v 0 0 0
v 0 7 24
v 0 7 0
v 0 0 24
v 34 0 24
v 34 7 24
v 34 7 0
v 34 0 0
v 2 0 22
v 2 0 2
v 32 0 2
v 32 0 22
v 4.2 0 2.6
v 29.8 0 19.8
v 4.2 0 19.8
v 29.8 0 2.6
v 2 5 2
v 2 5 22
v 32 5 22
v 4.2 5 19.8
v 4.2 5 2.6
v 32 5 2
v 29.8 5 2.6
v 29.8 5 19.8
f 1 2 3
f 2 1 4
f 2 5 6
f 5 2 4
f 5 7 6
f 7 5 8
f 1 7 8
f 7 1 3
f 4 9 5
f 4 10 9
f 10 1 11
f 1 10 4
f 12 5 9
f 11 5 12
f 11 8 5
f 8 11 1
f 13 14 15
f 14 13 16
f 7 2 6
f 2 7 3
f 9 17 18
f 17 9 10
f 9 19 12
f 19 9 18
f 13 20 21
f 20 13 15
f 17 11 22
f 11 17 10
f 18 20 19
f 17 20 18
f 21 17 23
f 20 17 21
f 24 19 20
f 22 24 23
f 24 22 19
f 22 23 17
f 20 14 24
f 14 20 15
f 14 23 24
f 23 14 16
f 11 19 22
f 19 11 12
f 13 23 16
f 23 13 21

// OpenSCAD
ml_up_width=600;
ml_up_depth=30;
ml_up_heigth=20;
ml_up_thickness=2;


ml_endcap_width=ml_up_depth + 4;
ml_endcap_heigth=ml_up_heigth + 4;
ml_endcap_depth=7;
ml_endcap_groove_depth=5;
ml_dif_thickness=0.4;

difference() {
    cube([ml_endcap_width, ml_endcap_depth, ml_endcap_heigth]);

    color("red")
    translate([(ml_endcap_heigth - ml_up_heigth) / 2, -1, (ml_endcap_heigth - ml_up_heigth) / 2])
    cube([ml_up_thickness + 0.2, ml_endcap_groove_depth + 1, ml_up_heigth]);

    color("pink")
    translate([(ml_endcap_heigth - ml_up_heigth) / 2 + ml_up_thickness - 1, -1, ml_up_heigth - 0.2])
    cube([ml_up_depth - ml_up_thickness - ml_up_thickness + 2, ml_endcap_groove_depth + 1, ml_up_thickness + 0.2]);

    color("red")
    translate([ml_endcap_width - ml_up_thickness - (ml_endcap_heigth - ml_up_heigth) / 2 - 0.2, -1,  (ml_endcap_heigth - ml_up_heigth) / 2])
    cube([ml_up_thickness + 0.2, ml_endcap_groove_depth + 1, ml_up_heigth]);

    color("orange")
    translate([(ml_endcap_heigth - ml_up_heigth) / 2 + ml_up_thickness - 1, -1, ml_up_thickness])
    cube([ml_up_depth - ml_up_thickness - ml_up_thickness + 2, ml_endcap_groove_depth + 1, ml_dif_thickness + 0.2]);
}
